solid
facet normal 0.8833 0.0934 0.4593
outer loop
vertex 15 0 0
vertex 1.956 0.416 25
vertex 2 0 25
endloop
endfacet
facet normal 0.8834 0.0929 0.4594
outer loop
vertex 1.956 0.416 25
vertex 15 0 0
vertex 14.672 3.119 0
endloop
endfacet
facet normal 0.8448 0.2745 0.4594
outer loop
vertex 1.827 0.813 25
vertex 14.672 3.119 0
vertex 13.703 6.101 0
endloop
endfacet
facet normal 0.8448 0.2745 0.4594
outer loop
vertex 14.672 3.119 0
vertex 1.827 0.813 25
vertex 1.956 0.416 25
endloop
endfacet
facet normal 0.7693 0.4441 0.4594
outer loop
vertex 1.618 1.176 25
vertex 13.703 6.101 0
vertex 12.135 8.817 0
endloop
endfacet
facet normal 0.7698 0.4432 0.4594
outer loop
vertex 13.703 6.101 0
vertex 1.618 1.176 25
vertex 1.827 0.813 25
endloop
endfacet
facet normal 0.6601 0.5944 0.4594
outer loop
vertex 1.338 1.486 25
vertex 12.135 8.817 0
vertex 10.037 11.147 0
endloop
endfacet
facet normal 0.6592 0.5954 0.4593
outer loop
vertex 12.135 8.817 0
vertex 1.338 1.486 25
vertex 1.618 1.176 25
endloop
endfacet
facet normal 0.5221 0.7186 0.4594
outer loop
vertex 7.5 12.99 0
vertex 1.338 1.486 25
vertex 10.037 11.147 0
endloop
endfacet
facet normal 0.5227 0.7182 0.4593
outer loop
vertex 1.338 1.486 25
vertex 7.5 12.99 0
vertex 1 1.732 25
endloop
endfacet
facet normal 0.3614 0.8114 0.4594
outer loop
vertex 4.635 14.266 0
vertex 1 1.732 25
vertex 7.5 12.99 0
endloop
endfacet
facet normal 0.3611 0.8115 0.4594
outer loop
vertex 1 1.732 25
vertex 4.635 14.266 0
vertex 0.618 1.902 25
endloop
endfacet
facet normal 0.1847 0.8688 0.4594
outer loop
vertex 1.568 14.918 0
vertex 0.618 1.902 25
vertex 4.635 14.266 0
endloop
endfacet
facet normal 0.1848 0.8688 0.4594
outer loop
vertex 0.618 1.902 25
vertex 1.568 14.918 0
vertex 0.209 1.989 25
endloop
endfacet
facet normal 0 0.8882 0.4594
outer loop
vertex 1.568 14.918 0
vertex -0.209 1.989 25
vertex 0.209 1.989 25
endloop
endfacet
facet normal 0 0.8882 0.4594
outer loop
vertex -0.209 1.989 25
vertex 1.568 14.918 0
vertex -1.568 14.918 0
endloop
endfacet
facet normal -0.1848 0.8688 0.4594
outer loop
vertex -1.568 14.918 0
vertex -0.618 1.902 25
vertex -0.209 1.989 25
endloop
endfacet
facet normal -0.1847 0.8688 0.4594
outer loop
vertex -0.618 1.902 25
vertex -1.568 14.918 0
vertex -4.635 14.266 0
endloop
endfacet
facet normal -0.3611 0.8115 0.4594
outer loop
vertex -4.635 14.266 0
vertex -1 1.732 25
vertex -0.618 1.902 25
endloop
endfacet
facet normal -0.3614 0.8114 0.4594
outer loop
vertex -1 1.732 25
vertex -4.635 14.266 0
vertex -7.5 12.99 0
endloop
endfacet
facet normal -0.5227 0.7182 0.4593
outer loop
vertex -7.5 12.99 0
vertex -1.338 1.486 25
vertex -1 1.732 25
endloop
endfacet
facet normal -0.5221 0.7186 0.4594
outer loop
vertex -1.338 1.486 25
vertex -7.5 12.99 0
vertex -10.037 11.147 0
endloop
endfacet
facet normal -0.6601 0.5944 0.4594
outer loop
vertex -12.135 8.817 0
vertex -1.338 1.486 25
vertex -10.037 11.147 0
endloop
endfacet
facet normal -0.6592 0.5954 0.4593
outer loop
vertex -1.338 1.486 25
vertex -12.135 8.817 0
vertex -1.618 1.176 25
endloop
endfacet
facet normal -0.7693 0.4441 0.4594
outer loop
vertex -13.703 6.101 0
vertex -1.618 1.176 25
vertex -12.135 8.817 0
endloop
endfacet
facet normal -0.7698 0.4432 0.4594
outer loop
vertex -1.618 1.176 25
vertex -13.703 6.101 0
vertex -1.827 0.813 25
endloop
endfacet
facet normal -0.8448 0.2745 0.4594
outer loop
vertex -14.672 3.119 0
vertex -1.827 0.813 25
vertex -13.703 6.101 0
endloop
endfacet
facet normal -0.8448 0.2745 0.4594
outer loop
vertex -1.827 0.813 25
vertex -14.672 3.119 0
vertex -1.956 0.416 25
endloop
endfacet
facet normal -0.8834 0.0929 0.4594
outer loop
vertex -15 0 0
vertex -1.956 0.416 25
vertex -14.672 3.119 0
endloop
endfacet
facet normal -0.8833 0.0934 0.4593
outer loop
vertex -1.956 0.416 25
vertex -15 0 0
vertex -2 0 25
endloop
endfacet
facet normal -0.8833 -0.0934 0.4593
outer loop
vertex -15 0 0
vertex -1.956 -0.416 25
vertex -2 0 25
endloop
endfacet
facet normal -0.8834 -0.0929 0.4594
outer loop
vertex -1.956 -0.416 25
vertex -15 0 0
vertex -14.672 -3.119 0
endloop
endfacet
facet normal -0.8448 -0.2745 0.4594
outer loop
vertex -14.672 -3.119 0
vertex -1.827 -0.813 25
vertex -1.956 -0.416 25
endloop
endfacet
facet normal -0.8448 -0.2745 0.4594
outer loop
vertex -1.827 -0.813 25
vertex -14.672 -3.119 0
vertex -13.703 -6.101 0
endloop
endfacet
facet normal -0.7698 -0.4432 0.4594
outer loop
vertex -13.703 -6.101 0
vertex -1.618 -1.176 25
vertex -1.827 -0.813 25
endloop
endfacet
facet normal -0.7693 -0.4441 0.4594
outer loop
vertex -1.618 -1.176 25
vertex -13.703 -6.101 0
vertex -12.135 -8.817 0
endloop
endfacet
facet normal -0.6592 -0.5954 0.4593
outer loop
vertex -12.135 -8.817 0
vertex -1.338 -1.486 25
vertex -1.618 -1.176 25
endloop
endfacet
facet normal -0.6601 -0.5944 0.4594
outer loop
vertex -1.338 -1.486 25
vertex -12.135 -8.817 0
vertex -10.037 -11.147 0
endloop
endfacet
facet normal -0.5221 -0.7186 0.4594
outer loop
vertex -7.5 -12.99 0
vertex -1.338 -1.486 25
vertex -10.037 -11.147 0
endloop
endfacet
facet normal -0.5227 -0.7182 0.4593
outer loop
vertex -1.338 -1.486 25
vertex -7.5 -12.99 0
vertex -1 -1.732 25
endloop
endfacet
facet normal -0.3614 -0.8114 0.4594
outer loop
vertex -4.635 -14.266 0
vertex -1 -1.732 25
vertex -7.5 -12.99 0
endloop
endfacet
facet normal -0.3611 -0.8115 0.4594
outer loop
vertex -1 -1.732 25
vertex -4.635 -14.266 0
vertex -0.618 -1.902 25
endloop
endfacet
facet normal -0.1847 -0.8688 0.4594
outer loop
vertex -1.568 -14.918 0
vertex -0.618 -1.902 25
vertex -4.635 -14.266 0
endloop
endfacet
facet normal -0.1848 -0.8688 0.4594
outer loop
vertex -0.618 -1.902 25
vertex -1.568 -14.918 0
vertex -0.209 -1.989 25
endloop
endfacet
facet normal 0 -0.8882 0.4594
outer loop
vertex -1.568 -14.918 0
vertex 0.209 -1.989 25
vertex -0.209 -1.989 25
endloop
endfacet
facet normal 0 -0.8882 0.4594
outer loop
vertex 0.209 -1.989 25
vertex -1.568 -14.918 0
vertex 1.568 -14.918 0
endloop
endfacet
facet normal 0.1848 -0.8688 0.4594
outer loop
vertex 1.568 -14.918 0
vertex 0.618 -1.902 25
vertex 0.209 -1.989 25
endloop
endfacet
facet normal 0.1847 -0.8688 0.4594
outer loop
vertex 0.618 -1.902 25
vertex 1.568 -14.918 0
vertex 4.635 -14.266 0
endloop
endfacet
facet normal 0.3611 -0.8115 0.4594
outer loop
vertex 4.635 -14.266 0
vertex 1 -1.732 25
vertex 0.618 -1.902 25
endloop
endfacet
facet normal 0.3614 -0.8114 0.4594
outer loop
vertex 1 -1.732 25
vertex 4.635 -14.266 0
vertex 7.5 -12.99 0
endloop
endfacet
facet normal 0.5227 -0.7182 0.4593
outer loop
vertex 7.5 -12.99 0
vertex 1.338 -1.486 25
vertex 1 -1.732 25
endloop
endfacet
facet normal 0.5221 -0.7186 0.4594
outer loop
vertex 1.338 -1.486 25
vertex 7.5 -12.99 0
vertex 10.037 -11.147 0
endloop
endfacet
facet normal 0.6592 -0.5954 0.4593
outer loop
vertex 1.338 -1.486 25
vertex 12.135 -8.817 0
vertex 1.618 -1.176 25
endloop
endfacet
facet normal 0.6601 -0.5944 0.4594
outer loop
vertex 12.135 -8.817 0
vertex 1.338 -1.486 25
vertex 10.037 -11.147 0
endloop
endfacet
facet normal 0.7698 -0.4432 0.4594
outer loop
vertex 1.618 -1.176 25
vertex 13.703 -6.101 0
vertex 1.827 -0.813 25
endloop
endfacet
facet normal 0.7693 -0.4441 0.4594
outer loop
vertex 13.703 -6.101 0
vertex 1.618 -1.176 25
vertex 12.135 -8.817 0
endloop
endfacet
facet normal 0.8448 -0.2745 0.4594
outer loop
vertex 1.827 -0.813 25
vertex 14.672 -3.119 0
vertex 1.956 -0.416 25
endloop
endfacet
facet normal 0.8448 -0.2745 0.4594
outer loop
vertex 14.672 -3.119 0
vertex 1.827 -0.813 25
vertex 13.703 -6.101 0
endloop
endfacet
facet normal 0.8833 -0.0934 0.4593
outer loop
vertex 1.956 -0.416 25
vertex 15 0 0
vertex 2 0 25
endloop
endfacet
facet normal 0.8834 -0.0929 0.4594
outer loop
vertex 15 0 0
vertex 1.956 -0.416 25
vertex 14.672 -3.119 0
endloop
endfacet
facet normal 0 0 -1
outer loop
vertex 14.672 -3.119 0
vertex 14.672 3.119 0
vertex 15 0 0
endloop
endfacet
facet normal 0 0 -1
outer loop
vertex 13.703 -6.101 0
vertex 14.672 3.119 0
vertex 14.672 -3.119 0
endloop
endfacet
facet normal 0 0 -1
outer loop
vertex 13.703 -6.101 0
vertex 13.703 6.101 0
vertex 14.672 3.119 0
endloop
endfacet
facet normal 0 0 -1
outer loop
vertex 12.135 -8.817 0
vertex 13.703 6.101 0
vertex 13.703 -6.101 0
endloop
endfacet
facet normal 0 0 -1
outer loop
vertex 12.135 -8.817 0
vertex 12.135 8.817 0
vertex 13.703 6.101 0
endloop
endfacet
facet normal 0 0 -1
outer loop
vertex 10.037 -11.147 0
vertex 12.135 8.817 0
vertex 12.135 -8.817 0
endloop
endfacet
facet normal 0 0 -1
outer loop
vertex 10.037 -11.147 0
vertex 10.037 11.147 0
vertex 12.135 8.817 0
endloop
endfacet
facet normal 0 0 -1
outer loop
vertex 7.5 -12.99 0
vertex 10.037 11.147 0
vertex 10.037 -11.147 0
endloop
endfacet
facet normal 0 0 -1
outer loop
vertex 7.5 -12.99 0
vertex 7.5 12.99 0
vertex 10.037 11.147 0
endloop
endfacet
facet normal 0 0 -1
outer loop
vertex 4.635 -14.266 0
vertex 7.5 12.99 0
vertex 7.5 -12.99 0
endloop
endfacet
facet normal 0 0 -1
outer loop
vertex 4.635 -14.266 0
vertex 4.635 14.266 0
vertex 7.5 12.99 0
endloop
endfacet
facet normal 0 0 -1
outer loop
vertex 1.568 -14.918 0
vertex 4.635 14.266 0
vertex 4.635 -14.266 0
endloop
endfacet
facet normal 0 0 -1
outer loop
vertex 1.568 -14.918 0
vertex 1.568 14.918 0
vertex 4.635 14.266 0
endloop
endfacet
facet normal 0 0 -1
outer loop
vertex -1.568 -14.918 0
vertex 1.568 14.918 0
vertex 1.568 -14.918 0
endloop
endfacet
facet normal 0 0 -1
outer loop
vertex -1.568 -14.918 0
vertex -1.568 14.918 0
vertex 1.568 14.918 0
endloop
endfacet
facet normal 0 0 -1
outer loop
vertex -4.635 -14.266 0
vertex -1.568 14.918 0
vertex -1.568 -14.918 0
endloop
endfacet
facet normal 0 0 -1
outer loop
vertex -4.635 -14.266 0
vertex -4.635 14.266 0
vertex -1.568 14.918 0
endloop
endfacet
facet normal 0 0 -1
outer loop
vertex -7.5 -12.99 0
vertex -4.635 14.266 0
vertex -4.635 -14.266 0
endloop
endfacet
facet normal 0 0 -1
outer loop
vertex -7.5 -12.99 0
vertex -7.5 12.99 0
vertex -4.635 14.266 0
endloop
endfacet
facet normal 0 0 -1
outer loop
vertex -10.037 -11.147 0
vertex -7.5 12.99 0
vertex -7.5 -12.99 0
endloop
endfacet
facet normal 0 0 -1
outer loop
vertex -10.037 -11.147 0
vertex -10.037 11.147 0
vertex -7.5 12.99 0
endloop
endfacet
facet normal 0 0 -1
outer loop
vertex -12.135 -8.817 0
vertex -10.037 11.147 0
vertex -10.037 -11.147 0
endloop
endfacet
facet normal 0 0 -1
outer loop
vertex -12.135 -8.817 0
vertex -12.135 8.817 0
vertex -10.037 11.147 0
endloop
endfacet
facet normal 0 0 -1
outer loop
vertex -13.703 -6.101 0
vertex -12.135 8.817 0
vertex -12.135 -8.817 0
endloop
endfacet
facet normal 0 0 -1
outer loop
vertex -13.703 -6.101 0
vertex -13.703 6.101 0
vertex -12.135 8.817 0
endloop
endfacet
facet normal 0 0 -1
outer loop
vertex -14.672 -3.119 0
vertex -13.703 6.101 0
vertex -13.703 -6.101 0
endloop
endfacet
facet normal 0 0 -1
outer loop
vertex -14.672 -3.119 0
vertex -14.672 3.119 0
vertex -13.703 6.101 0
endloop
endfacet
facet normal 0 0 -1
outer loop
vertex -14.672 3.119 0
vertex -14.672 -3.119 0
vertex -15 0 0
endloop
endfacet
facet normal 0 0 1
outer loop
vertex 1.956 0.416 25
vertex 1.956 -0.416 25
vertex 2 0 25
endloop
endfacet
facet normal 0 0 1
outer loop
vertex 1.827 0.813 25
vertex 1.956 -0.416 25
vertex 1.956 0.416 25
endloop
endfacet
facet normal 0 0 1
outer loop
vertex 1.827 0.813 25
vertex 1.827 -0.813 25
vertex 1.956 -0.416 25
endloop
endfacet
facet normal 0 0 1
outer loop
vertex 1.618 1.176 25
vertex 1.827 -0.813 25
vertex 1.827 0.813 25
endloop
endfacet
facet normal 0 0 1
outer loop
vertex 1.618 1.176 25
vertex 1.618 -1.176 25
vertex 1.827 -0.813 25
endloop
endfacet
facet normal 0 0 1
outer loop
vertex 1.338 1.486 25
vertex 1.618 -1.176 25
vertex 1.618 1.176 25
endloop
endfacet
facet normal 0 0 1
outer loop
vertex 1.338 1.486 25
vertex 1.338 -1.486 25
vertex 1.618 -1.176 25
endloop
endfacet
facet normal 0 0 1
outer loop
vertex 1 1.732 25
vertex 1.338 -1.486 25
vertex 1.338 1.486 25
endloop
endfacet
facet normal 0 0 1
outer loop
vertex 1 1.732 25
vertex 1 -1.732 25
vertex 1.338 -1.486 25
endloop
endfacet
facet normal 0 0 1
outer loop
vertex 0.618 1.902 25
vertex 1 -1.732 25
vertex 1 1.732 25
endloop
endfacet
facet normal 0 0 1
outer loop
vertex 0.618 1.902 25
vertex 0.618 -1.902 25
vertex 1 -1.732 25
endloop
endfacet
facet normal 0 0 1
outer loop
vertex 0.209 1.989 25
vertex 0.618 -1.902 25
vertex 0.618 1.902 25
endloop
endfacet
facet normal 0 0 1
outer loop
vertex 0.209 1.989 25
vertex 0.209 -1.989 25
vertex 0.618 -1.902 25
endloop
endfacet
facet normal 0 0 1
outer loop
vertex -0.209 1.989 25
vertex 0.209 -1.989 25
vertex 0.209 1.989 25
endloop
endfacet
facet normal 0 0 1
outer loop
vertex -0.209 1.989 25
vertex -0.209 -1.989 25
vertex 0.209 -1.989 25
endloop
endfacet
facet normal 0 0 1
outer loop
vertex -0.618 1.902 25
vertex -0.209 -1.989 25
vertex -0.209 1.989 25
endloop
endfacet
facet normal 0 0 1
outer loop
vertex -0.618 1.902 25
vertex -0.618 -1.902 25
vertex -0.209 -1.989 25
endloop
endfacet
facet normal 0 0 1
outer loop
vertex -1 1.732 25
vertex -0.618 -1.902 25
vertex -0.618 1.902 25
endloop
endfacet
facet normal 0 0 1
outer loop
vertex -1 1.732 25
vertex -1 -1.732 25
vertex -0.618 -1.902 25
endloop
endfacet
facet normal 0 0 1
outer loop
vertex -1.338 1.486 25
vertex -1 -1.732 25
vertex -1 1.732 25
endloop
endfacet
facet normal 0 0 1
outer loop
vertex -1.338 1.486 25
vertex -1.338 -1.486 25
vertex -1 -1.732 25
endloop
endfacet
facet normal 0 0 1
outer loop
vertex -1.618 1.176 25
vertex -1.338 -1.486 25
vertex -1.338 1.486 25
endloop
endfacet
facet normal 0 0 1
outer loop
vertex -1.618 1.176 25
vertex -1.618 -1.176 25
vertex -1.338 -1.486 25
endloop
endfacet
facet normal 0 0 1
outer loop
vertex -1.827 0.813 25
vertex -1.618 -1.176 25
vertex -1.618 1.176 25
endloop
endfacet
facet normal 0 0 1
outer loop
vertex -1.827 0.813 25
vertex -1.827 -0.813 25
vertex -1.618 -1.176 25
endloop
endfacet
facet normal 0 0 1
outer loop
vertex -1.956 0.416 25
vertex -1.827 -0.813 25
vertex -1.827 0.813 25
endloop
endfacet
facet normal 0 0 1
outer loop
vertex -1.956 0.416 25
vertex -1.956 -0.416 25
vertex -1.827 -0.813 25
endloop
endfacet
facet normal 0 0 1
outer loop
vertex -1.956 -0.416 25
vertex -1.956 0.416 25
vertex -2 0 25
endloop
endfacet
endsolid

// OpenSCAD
// Cone using cylinder with different radii
cylinder(h = 25, r1 = 15, r2 = 2, $fn = 30);
